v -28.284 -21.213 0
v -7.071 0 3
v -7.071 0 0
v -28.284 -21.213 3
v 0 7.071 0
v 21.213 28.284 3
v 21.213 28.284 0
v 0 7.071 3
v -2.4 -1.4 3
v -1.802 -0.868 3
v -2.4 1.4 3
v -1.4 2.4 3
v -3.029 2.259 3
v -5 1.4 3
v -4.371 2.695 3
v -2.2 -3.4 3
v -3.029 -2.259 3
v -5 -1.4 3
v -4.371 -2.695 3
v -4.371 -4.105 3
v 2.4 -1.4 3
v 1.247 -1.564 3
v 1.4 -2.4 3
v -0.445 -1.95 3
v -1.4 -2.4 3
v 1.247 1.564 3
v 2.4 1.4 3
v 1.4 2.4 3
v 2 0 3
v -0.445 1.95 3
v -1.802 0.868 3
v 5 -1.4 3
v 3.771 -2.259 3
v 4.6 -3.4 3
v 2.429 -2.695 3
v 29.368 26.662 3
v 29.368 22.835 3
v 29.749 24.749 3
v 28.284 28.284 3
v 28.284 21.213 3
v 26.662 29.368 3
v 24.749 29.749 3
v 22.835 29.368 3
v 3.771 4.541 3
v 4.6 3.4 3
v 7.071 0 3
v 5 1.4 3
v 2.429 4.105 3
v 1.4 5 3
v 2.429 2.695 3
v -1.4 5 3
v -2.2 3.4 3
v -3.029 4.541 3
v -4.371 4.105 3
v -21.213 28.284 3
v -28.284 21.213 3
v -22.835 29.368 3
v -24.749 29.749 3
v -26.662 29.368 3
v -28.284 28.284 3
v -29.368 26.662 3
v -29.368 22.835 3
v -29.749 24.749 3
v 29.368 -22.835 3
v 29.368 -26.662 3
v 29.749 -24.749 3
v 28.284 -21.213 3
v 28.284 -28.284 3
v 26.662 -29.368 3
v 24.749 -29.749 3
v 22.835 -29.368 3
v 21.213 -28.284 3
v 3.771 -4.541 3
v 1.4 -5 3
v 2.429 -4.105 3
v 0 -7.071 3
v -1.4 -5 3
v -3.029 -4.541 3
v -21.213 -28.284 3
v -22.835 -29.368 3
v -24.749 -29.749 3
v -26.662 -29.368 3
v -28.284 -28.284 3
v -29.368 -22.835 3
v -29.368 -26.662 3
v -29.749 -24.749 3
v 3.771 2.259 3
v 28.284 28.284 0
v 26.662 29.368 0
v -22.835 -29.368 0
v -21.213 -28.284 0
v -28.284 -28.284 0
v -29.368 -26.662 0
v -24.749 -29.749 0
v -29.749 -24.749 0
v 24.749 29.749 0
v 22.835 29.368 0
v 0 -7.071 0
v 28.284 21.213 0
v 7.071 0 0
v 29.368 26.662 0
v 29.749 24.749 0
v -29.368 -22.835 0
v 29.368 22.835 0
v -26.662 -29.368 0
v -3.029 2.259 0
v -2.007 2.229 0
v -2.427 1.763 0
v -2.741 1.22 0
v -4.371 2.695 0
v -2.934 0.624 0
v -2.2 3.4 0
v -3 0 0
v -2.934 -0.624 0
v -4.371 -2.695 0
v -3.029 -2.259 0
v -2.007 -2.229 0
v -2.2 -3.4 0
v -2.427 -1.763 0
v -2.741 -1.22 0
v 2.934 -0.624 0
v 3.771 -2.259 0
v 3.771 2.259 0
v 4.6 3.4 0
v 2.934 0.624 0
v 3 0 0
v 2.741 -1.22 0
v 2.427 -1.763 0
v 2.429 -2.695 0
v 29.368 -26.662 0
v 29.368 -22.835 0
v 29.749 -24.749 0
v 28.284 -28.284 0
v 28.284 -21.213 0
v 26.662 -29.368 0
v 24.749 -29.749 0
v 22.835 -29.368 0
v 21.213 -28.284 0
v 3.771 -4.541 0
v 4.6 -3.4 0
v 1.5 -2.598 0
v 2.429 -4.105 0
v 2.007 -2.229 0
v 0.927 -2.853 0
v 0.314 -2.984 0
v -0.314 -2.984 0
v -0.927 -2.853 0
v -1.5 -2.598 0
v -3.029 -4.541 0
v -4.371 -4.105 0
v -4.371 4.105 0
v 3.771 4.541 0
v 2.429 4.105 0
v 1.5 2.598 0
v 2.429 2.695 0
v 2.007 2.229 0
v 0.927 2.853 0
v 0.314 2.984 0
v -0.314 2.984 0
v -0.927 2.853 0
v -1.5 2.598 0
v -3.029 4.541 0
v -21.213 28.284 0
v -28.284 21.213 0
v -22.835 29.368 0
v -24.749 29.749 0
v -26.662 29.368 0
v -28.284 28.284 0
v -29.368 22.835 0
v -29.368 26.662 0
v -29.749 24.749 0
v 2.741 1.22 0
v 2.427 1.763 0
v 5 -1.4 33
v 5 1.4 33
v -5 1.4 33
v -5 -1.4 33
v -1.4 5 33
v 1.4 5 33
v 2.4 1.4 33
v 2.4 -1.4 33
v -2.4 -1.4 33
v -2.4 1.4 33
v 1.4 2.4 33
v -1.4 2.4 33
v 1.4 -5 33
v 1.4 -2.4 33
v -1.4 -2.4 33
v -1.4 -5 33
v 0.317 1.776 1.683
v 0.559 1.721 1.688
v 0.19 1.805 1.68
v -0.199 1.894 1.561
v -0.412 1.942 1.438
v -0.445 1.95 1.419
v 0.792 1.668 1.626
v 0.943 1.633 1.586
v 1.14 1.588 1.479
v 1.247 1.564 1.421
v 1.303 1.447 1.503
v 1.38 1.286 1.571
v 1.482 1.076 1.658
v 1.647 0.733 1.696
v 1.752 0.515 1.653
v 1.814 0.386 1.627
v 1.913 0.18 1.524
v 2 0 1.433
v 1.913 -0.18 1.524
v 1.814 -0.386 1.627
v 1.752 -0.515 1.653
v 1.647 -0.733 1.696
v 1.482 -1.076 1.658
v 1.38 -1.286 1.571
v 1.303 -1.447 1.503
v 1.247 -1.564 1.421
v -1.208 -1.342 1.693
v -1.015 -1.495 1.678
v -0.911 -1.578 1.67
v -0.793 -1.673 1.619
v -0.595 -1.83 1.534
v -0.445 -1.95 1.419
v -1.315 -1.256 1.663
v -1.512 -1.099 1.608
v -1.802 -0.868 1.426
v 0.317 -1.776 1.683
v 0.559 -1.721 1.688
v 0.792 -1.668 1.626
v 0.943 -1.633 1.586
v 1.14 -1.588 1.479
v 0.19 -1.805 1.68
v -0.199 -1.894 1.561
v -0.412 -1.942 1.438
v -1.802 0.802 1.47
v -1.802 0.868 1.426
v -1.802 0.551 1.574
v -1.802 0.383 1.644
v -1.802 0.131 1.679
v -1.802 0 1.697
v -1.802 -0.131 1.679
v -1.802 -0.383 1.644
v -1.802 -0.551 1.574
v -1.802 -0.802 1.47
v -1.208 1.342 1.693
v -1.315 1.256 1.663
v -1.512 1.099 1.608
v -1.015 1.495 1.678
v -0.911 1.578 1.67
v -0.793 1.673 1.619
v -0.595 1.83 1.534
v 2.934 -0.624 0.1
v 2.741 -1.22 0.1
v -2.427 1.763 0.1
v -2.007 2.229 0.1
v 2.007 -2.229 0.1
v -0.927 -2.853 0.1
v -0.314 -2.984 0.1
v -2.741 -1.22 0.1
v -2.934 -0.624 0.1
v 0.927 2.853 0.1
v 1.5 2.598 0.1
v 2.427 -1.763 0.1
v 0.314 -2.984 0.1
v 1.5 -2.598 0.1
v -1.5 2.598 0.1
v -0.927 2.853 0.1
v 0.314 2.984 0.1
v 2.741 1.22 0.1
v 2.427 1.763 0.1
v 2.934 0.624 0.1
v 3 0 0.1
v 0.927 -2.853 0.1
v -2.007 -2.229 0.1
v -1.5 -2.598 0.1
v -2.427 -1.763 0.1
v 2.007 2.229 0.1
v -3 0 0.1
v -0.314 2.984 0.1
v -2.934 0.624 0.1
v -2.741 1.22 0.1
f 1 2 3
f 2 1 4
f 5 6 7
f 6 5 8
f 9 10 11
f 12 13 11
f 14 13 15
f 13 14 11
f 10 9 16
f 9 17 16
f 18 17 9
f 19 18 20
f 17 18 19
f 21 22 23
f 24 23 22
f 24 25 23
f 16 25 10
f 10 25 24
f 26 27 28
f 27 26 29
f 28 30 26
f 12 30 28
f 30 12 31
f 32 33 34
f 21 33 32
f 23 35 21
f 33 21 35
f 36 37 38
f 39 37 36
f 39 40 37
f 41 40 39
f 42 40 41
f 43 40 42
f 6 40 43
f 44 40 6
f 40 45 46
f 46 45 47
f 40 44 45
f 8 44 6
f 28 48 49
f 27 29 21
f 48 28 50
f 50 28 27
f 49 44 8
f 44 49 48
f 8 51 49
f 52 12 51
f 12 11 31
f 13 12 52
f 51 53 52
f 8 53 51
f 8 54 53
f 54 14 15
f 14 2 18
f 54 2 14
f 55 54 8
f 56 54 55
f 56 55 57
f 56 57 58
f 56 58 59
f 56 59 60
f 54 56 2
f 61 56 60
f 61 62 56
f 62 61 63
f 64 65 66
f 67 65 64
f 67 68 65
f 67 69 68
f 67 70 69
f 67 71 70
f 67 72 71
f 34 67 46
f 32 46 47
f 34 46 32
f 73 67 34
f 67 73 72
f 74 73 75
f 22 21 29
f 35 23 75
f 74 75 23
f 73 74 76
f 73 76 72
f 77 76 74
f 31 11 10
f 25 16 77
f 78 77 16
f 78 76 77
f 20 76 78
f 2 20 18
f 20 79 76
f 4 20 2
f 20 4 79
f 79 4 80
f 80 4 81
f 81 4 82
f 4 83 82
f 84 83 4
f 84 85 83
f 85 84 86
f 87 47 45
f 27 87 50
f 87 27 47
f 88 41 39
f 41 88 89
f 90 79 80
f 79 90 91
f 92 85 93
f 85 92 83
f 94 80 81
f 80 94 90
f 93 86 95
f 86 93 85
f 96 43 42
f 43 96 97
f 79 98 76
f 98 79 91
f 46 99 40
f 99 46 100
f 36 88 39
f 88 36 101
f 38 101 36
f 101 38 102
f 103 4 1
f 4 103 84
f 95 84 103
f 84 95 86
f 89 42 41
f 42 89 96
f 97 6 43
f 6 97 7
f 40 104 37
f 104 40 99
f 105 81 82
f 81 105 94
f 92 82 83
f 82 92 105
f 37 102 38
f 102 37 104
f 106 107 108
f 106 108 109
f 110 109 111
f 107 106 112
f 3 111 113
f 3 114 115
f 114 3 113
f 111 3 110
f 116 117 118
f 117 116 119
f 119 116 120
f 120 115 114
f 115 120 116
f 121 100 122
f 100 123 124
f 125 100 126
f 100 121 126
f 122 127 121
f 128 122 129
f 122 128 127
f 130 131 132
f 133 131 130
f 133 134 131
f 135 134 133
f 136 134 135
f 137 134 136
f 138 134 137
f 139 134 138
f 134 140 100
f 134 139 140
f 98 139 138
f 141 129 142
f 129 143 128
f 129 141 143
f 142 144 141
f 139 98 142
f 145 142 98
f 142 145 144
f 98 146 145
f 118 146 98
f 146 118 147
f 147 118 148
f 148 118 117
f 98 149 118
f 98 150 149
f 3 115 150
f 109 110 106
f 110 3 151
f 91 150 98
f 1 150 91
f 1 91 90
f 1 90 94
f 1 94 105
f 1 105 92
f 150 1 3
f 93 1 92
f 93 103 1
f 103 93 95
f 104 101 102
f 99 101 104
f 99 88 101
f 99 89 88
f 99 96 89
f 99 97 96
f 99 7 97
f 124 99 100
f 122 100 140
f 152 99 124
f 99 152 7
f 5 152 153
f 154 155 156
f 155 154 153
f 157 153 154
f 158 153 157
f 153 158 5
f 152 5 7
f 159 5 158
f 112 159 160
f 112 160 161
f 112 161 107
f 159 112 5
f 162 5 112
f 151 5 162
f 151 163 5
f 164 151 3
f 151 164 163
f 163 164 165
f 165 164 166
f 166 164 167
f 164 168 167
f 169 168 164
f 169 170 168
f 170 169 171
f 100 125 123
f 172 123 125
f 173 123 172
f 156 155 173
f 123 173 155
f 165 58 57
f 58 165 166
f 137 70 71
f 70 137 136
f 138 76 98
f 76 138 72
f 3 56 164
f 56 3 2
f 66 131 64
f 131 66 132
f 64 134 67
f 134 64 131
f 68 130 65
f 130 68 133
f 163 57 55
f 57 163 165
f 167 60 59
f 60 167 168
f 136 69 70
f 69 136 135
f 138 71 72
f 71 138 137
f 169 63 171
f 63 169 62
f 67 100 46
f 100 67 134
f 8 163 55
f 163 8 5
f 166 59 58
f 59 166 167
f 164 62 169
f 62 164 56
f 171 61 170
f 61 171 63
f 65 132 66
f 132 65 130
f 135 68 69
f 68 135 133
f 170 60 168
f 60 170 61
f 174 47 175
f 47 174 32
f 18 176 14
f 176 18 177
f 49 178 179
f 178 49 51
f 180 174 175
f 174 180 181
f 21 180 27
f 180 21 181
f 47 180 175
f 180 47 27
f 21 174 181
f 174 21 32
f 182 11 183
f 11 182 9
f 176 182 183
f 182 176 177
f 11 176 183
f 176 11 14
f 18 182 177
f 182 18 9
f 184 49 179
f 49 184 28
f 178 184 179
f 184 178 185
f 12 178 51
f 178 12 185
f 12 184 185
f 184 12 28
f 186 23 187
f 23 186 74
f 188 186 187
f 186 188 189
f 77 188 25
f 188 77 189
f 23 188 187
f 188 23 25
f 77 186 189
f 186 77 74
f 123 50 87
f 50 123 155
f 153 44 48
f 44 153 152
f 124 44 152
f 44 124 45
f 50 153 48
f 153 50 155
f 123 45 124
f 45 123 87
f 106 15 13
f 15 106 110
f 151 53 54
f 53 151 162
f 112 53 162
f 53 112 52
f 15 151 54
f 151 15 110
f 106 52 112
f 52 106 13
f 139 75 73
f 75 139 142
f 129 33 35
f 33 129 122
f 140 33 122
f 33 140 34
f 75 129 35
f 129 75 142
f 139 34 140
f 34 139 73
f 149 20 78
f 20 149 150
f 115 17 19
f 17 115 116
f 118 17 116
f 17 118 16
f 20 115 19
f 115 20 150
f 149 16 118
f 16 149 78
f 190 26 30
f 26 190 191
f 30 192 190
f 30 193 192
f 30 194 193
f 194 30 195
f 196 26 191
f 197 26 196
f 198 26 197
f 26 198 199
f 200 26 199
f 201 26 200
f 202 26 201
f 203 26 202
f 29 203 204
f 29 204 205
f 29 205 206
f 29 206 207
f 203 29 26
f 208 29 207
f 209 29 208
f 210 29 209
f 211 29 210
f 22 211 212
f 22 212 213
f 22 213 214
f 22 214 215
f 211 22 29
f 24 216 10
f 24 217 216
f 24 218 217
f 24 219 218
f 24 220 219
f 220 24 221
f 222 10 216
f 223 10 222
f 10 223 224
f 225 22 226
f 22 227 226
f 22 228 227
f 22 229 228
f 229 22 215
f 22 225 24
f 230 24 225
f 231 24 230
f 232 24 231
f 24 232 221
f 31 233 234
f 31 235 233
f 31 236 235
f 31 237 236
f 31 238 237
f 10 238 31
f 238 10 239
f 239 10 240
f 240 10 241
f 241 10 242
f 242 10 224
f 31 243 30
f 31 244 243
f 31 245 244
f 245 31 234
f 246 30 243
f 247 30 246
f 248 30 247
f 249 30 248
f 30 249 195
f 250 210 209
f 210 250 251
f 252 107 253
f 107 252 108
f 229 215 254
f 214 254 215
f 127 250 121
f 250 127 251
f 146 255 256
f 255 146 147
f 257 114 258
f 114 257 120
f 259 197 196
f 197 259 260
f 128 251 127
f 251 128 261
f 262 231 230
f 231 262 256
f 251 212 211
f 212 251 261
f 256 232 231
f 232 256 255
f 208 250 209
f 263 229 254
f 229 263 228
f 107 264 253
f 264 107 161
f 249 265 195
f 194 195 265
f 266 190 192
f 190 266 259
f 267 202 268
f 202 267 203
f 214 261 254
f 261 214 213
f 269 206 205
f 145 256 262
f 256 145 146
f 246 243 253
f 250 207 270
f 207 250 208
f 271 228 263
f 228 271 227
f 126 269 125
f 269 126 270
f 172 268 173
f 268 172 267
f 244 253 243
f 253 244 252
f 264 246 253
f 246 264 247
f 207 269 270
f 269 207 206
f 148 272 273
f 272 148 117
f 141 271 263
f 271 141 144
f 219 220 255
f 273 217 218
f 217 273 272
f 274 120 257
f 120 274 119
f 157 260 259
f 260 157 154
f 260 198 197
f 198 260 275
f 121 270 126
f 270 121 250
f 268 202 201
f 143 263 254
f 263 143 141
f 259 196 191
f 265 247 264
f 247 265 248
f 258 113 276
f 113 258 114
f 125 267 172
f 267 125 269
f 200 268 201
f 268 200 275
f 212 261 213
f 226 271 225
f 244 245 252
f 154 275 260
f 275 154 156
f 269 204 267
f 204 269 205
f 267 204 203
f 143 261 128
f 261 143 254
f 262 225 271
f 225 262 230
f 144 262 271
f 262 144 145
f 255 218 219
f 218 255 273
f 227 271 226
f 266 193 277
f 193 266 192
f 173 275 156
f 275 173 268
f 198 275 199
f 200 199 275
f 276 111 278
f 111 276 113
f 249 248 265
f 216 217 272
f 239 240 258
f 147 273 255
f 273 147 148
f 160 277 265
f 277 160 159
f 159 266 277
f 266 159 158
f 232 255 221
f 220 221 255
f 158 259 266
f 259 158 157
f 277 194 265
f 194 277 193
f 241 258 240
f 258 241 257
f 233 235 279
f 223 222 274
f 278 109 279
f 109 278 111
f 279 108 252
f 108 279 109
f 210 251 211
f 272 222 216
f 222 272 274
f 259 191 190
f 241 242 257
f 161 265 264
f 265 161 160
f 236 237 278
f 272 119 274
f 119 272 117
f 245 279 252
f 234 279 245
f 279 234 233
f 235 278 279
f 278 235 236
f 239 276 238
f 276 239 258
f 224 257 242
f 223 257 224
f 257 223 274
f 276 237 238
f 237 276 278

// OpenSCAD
//CUSTOMIZER VARIABLES

/* [Basic_Parameters] */

// end cap thickness, in mm
end_depth = 3.0;    // [1:0.1:10]

// slot tab length, in mm
tab_width = 30.0;    // [2:0.1:20]

// foot length (can be zero), in mm
foot_length = 30.0;    // [0:1:20]

// foot height, in mm
foot_height = 10.0;    // [2:0.5:20]

// Bolt diameter (can be zero), in mm
bolt_diameter = 3.0;    // [0:0.1:20]

// fillet radius, in mm
fillet_radius = 0.0;    // [1:0.1:20]

// hole radius (can be zero), in mm
hole_radius = 1.2;    // [0:0.1:20]

// Makerbeam slot diameter for tight fit, in mm
slot_diameter = 2.8;    // [2:0.1:20]
// varies between 2.8 and 3.1 on different pieces!

// Makerbeam slot distance to edge for tight fit, in mm
tab_height = 2.6;    // [2:0.1:20]

// Makerbeam size, in mm
rail_size = 10;   // [10:50]

//CUSTOMIZER VARIABLES END


// Sanity checks
if( end_depth <= 0 || tab_width <= 0
    || rail_size <= 0 || slot_diameter <= 0)
{
    echo("<B>Error: Missing important parameters</B>");
}


// z depth
main_depth= end_depth;
fillet_size= fillet_radius;


// our object, translated to be flat on xy plane for easy STL generation
translate([0,0,main_depth/2])
    end_cap();

module end_cap(){

    main_width= rail_size;
    main_height= rail_size;
    bolt_length= main_depth+tab_width+5;

    difference() {
      union() {
 
        // the main block
        cube([main_width,main_height,main_depth],center = true);

        // tabs to grip the rail
        tab_dist= main_width/2 - tab_height/2;
        tab_offset= main_depth/2 + tab_width/2;
        translate([tab_dist,0,tab_offset])
          cube([tab_height,slot_diameter,tab_width], center = true);
        translate([-tab_dist,0,tab_offset])
          cube([tab_height,slot_diameter,tab_width], center = true);
        translate([0,tab_dist,tab_offset])
          cube([slot_diameter,tab_height,tab_width], center = true);
        translate([0,-tab_dist,tab_offset])
          cube([slot_diameter,tab_height,tab_width], center = true);
 
        // side pieces to help stabilize the rail on a table
        if (foot_length > 0 && foot_height > 0) {
            for (i=[45,135])
                rotate([0,0,i])
                hull(){
                translate([(main_width/2+foot_length),(main_height-foot_height)/2,-main_depth/2])
                  cylinder(main_depth,foot_height/2,foot_height/2,$fn=16);
                translate([-(main_width/2+foot_length),(main_height-foot_height)/2,-main_depth/2])
                  cylinder(main_depth,foot_height/2,foot_height/2,$fn=16);
                }
              
            // hacky fillet for strength of foot joint
            difference() {
              translate([main_width/2+fillet_size/2,main_height/2-foot_height-fillet_size/2,0])
                cube([fillet_size,fillet_size,main_depth],center = true);
              translate([main_width/2+fillet_size,main_height/2-foot_height-fillet_size,-main_depth/2-1])
                cylinder(main_depth+2,fillet_size,fillet_size,$fn=16);
            }
            difference() {
              translate([-(main_width/2+fillet_size/2),main_height/2-foot_height-fillet_size/2,0])
                cube([fillet_size,fillet_size,main_depth],center = true);
              translate([-(main_width/2+fillet_size),main_height/2-foot_height-fillet_size,-main_depth/2-1])
                cylinder(main_depth+2,fillet_size,fillet_size,$fn=16);
            }
         }
      }

    // optional holes to reduce material usage, allow a little more give on tabs
    if (hole_radius > 0) {
       hole_offset = main_width/2.5 - hole_radius/2;
       translate([hole_offset,hole_offset,-3])
         cylinder(bolt_length,hole_radius,hole_radius);
       translate([-hole_offset,hole_offset,-3])
         cylinder(bolt_length,hole_radius,hole_radius);
       translate([hole_offset,-hole_offset,-3])
         cylinder(bolt_length,hole_radius,hole_radius);
       translate([-hole_offset,-hole_offset,-3])
         cylinder(bolt_length,hole_radius,hole_radius);
    }

    // hacky fillet to remove sharp corners from top
    corner_x= main_width/2-fillet_size/2;
    corner_y=main_height/2-fillet_size/2;
    cyl_x= main_width/2-fillet_size;
    cyl_y= main_height/2-fillet_size;
    difference() {
      translate([corner_x,-corner_y,0])
        cube([fillet_size,fillet_size,main_depth],center = true);
      translate([cyl_x,-cyl_y,-main_depth/2])
        cylinder(main_depth,fillet_size,fillet_size,$fn=16);
    }
    difference() {
      translate([-corner_x,-corner_y,0])
        cube([fillet_size,fillet_size,main_depth],center = true);
      translate([-cyl_x,-cyl_y,-main_depth/2])
        cylinder(main_depth,fillet_size,fillet_size,$fn=16);
    }
    
    // if no foot, then fillet all 4 corners
   if (foot_length <= 0 || foot_height < 0) {
        difference() {
          translate([corner_x,corner_y,0])
            cube([fillet_size,fillet_size,main_depth],center = true);
          translate([cyl_x,cyl_y,-main_depth/2])
            cylinder(main_depth,fillet_size,fillet_size,$fn=16);
        }
        difference() {
          translate([-corner_x,corner_y,0])
            cube([fillet_size,fillet_size,main_depth],center = true);
          translate([-cyl_x,cyl_y,-main_depth/2])
            cylinder(main_depth,fillet_size,fillet_size,$fn=16);
        }
   }

    // optional hole in center for bolt, also reduces material use
    if (bolt_diameter > 0) {
       bolt_rad= (bolt_diameter+1)/2;
       translate([0,0,-3])
         cylinder(bolt_length,bolt_rad,bolt_rad);
    }
    
    translate([0,0,-1.5]) #hull(){
    translate([0,0,2])cylinder(h=0.1, d=bolt_diameter, $fn=30);
    cylinder(h=0.1, d=bolt_diameter*2, $fn=30);
}
  }

}
